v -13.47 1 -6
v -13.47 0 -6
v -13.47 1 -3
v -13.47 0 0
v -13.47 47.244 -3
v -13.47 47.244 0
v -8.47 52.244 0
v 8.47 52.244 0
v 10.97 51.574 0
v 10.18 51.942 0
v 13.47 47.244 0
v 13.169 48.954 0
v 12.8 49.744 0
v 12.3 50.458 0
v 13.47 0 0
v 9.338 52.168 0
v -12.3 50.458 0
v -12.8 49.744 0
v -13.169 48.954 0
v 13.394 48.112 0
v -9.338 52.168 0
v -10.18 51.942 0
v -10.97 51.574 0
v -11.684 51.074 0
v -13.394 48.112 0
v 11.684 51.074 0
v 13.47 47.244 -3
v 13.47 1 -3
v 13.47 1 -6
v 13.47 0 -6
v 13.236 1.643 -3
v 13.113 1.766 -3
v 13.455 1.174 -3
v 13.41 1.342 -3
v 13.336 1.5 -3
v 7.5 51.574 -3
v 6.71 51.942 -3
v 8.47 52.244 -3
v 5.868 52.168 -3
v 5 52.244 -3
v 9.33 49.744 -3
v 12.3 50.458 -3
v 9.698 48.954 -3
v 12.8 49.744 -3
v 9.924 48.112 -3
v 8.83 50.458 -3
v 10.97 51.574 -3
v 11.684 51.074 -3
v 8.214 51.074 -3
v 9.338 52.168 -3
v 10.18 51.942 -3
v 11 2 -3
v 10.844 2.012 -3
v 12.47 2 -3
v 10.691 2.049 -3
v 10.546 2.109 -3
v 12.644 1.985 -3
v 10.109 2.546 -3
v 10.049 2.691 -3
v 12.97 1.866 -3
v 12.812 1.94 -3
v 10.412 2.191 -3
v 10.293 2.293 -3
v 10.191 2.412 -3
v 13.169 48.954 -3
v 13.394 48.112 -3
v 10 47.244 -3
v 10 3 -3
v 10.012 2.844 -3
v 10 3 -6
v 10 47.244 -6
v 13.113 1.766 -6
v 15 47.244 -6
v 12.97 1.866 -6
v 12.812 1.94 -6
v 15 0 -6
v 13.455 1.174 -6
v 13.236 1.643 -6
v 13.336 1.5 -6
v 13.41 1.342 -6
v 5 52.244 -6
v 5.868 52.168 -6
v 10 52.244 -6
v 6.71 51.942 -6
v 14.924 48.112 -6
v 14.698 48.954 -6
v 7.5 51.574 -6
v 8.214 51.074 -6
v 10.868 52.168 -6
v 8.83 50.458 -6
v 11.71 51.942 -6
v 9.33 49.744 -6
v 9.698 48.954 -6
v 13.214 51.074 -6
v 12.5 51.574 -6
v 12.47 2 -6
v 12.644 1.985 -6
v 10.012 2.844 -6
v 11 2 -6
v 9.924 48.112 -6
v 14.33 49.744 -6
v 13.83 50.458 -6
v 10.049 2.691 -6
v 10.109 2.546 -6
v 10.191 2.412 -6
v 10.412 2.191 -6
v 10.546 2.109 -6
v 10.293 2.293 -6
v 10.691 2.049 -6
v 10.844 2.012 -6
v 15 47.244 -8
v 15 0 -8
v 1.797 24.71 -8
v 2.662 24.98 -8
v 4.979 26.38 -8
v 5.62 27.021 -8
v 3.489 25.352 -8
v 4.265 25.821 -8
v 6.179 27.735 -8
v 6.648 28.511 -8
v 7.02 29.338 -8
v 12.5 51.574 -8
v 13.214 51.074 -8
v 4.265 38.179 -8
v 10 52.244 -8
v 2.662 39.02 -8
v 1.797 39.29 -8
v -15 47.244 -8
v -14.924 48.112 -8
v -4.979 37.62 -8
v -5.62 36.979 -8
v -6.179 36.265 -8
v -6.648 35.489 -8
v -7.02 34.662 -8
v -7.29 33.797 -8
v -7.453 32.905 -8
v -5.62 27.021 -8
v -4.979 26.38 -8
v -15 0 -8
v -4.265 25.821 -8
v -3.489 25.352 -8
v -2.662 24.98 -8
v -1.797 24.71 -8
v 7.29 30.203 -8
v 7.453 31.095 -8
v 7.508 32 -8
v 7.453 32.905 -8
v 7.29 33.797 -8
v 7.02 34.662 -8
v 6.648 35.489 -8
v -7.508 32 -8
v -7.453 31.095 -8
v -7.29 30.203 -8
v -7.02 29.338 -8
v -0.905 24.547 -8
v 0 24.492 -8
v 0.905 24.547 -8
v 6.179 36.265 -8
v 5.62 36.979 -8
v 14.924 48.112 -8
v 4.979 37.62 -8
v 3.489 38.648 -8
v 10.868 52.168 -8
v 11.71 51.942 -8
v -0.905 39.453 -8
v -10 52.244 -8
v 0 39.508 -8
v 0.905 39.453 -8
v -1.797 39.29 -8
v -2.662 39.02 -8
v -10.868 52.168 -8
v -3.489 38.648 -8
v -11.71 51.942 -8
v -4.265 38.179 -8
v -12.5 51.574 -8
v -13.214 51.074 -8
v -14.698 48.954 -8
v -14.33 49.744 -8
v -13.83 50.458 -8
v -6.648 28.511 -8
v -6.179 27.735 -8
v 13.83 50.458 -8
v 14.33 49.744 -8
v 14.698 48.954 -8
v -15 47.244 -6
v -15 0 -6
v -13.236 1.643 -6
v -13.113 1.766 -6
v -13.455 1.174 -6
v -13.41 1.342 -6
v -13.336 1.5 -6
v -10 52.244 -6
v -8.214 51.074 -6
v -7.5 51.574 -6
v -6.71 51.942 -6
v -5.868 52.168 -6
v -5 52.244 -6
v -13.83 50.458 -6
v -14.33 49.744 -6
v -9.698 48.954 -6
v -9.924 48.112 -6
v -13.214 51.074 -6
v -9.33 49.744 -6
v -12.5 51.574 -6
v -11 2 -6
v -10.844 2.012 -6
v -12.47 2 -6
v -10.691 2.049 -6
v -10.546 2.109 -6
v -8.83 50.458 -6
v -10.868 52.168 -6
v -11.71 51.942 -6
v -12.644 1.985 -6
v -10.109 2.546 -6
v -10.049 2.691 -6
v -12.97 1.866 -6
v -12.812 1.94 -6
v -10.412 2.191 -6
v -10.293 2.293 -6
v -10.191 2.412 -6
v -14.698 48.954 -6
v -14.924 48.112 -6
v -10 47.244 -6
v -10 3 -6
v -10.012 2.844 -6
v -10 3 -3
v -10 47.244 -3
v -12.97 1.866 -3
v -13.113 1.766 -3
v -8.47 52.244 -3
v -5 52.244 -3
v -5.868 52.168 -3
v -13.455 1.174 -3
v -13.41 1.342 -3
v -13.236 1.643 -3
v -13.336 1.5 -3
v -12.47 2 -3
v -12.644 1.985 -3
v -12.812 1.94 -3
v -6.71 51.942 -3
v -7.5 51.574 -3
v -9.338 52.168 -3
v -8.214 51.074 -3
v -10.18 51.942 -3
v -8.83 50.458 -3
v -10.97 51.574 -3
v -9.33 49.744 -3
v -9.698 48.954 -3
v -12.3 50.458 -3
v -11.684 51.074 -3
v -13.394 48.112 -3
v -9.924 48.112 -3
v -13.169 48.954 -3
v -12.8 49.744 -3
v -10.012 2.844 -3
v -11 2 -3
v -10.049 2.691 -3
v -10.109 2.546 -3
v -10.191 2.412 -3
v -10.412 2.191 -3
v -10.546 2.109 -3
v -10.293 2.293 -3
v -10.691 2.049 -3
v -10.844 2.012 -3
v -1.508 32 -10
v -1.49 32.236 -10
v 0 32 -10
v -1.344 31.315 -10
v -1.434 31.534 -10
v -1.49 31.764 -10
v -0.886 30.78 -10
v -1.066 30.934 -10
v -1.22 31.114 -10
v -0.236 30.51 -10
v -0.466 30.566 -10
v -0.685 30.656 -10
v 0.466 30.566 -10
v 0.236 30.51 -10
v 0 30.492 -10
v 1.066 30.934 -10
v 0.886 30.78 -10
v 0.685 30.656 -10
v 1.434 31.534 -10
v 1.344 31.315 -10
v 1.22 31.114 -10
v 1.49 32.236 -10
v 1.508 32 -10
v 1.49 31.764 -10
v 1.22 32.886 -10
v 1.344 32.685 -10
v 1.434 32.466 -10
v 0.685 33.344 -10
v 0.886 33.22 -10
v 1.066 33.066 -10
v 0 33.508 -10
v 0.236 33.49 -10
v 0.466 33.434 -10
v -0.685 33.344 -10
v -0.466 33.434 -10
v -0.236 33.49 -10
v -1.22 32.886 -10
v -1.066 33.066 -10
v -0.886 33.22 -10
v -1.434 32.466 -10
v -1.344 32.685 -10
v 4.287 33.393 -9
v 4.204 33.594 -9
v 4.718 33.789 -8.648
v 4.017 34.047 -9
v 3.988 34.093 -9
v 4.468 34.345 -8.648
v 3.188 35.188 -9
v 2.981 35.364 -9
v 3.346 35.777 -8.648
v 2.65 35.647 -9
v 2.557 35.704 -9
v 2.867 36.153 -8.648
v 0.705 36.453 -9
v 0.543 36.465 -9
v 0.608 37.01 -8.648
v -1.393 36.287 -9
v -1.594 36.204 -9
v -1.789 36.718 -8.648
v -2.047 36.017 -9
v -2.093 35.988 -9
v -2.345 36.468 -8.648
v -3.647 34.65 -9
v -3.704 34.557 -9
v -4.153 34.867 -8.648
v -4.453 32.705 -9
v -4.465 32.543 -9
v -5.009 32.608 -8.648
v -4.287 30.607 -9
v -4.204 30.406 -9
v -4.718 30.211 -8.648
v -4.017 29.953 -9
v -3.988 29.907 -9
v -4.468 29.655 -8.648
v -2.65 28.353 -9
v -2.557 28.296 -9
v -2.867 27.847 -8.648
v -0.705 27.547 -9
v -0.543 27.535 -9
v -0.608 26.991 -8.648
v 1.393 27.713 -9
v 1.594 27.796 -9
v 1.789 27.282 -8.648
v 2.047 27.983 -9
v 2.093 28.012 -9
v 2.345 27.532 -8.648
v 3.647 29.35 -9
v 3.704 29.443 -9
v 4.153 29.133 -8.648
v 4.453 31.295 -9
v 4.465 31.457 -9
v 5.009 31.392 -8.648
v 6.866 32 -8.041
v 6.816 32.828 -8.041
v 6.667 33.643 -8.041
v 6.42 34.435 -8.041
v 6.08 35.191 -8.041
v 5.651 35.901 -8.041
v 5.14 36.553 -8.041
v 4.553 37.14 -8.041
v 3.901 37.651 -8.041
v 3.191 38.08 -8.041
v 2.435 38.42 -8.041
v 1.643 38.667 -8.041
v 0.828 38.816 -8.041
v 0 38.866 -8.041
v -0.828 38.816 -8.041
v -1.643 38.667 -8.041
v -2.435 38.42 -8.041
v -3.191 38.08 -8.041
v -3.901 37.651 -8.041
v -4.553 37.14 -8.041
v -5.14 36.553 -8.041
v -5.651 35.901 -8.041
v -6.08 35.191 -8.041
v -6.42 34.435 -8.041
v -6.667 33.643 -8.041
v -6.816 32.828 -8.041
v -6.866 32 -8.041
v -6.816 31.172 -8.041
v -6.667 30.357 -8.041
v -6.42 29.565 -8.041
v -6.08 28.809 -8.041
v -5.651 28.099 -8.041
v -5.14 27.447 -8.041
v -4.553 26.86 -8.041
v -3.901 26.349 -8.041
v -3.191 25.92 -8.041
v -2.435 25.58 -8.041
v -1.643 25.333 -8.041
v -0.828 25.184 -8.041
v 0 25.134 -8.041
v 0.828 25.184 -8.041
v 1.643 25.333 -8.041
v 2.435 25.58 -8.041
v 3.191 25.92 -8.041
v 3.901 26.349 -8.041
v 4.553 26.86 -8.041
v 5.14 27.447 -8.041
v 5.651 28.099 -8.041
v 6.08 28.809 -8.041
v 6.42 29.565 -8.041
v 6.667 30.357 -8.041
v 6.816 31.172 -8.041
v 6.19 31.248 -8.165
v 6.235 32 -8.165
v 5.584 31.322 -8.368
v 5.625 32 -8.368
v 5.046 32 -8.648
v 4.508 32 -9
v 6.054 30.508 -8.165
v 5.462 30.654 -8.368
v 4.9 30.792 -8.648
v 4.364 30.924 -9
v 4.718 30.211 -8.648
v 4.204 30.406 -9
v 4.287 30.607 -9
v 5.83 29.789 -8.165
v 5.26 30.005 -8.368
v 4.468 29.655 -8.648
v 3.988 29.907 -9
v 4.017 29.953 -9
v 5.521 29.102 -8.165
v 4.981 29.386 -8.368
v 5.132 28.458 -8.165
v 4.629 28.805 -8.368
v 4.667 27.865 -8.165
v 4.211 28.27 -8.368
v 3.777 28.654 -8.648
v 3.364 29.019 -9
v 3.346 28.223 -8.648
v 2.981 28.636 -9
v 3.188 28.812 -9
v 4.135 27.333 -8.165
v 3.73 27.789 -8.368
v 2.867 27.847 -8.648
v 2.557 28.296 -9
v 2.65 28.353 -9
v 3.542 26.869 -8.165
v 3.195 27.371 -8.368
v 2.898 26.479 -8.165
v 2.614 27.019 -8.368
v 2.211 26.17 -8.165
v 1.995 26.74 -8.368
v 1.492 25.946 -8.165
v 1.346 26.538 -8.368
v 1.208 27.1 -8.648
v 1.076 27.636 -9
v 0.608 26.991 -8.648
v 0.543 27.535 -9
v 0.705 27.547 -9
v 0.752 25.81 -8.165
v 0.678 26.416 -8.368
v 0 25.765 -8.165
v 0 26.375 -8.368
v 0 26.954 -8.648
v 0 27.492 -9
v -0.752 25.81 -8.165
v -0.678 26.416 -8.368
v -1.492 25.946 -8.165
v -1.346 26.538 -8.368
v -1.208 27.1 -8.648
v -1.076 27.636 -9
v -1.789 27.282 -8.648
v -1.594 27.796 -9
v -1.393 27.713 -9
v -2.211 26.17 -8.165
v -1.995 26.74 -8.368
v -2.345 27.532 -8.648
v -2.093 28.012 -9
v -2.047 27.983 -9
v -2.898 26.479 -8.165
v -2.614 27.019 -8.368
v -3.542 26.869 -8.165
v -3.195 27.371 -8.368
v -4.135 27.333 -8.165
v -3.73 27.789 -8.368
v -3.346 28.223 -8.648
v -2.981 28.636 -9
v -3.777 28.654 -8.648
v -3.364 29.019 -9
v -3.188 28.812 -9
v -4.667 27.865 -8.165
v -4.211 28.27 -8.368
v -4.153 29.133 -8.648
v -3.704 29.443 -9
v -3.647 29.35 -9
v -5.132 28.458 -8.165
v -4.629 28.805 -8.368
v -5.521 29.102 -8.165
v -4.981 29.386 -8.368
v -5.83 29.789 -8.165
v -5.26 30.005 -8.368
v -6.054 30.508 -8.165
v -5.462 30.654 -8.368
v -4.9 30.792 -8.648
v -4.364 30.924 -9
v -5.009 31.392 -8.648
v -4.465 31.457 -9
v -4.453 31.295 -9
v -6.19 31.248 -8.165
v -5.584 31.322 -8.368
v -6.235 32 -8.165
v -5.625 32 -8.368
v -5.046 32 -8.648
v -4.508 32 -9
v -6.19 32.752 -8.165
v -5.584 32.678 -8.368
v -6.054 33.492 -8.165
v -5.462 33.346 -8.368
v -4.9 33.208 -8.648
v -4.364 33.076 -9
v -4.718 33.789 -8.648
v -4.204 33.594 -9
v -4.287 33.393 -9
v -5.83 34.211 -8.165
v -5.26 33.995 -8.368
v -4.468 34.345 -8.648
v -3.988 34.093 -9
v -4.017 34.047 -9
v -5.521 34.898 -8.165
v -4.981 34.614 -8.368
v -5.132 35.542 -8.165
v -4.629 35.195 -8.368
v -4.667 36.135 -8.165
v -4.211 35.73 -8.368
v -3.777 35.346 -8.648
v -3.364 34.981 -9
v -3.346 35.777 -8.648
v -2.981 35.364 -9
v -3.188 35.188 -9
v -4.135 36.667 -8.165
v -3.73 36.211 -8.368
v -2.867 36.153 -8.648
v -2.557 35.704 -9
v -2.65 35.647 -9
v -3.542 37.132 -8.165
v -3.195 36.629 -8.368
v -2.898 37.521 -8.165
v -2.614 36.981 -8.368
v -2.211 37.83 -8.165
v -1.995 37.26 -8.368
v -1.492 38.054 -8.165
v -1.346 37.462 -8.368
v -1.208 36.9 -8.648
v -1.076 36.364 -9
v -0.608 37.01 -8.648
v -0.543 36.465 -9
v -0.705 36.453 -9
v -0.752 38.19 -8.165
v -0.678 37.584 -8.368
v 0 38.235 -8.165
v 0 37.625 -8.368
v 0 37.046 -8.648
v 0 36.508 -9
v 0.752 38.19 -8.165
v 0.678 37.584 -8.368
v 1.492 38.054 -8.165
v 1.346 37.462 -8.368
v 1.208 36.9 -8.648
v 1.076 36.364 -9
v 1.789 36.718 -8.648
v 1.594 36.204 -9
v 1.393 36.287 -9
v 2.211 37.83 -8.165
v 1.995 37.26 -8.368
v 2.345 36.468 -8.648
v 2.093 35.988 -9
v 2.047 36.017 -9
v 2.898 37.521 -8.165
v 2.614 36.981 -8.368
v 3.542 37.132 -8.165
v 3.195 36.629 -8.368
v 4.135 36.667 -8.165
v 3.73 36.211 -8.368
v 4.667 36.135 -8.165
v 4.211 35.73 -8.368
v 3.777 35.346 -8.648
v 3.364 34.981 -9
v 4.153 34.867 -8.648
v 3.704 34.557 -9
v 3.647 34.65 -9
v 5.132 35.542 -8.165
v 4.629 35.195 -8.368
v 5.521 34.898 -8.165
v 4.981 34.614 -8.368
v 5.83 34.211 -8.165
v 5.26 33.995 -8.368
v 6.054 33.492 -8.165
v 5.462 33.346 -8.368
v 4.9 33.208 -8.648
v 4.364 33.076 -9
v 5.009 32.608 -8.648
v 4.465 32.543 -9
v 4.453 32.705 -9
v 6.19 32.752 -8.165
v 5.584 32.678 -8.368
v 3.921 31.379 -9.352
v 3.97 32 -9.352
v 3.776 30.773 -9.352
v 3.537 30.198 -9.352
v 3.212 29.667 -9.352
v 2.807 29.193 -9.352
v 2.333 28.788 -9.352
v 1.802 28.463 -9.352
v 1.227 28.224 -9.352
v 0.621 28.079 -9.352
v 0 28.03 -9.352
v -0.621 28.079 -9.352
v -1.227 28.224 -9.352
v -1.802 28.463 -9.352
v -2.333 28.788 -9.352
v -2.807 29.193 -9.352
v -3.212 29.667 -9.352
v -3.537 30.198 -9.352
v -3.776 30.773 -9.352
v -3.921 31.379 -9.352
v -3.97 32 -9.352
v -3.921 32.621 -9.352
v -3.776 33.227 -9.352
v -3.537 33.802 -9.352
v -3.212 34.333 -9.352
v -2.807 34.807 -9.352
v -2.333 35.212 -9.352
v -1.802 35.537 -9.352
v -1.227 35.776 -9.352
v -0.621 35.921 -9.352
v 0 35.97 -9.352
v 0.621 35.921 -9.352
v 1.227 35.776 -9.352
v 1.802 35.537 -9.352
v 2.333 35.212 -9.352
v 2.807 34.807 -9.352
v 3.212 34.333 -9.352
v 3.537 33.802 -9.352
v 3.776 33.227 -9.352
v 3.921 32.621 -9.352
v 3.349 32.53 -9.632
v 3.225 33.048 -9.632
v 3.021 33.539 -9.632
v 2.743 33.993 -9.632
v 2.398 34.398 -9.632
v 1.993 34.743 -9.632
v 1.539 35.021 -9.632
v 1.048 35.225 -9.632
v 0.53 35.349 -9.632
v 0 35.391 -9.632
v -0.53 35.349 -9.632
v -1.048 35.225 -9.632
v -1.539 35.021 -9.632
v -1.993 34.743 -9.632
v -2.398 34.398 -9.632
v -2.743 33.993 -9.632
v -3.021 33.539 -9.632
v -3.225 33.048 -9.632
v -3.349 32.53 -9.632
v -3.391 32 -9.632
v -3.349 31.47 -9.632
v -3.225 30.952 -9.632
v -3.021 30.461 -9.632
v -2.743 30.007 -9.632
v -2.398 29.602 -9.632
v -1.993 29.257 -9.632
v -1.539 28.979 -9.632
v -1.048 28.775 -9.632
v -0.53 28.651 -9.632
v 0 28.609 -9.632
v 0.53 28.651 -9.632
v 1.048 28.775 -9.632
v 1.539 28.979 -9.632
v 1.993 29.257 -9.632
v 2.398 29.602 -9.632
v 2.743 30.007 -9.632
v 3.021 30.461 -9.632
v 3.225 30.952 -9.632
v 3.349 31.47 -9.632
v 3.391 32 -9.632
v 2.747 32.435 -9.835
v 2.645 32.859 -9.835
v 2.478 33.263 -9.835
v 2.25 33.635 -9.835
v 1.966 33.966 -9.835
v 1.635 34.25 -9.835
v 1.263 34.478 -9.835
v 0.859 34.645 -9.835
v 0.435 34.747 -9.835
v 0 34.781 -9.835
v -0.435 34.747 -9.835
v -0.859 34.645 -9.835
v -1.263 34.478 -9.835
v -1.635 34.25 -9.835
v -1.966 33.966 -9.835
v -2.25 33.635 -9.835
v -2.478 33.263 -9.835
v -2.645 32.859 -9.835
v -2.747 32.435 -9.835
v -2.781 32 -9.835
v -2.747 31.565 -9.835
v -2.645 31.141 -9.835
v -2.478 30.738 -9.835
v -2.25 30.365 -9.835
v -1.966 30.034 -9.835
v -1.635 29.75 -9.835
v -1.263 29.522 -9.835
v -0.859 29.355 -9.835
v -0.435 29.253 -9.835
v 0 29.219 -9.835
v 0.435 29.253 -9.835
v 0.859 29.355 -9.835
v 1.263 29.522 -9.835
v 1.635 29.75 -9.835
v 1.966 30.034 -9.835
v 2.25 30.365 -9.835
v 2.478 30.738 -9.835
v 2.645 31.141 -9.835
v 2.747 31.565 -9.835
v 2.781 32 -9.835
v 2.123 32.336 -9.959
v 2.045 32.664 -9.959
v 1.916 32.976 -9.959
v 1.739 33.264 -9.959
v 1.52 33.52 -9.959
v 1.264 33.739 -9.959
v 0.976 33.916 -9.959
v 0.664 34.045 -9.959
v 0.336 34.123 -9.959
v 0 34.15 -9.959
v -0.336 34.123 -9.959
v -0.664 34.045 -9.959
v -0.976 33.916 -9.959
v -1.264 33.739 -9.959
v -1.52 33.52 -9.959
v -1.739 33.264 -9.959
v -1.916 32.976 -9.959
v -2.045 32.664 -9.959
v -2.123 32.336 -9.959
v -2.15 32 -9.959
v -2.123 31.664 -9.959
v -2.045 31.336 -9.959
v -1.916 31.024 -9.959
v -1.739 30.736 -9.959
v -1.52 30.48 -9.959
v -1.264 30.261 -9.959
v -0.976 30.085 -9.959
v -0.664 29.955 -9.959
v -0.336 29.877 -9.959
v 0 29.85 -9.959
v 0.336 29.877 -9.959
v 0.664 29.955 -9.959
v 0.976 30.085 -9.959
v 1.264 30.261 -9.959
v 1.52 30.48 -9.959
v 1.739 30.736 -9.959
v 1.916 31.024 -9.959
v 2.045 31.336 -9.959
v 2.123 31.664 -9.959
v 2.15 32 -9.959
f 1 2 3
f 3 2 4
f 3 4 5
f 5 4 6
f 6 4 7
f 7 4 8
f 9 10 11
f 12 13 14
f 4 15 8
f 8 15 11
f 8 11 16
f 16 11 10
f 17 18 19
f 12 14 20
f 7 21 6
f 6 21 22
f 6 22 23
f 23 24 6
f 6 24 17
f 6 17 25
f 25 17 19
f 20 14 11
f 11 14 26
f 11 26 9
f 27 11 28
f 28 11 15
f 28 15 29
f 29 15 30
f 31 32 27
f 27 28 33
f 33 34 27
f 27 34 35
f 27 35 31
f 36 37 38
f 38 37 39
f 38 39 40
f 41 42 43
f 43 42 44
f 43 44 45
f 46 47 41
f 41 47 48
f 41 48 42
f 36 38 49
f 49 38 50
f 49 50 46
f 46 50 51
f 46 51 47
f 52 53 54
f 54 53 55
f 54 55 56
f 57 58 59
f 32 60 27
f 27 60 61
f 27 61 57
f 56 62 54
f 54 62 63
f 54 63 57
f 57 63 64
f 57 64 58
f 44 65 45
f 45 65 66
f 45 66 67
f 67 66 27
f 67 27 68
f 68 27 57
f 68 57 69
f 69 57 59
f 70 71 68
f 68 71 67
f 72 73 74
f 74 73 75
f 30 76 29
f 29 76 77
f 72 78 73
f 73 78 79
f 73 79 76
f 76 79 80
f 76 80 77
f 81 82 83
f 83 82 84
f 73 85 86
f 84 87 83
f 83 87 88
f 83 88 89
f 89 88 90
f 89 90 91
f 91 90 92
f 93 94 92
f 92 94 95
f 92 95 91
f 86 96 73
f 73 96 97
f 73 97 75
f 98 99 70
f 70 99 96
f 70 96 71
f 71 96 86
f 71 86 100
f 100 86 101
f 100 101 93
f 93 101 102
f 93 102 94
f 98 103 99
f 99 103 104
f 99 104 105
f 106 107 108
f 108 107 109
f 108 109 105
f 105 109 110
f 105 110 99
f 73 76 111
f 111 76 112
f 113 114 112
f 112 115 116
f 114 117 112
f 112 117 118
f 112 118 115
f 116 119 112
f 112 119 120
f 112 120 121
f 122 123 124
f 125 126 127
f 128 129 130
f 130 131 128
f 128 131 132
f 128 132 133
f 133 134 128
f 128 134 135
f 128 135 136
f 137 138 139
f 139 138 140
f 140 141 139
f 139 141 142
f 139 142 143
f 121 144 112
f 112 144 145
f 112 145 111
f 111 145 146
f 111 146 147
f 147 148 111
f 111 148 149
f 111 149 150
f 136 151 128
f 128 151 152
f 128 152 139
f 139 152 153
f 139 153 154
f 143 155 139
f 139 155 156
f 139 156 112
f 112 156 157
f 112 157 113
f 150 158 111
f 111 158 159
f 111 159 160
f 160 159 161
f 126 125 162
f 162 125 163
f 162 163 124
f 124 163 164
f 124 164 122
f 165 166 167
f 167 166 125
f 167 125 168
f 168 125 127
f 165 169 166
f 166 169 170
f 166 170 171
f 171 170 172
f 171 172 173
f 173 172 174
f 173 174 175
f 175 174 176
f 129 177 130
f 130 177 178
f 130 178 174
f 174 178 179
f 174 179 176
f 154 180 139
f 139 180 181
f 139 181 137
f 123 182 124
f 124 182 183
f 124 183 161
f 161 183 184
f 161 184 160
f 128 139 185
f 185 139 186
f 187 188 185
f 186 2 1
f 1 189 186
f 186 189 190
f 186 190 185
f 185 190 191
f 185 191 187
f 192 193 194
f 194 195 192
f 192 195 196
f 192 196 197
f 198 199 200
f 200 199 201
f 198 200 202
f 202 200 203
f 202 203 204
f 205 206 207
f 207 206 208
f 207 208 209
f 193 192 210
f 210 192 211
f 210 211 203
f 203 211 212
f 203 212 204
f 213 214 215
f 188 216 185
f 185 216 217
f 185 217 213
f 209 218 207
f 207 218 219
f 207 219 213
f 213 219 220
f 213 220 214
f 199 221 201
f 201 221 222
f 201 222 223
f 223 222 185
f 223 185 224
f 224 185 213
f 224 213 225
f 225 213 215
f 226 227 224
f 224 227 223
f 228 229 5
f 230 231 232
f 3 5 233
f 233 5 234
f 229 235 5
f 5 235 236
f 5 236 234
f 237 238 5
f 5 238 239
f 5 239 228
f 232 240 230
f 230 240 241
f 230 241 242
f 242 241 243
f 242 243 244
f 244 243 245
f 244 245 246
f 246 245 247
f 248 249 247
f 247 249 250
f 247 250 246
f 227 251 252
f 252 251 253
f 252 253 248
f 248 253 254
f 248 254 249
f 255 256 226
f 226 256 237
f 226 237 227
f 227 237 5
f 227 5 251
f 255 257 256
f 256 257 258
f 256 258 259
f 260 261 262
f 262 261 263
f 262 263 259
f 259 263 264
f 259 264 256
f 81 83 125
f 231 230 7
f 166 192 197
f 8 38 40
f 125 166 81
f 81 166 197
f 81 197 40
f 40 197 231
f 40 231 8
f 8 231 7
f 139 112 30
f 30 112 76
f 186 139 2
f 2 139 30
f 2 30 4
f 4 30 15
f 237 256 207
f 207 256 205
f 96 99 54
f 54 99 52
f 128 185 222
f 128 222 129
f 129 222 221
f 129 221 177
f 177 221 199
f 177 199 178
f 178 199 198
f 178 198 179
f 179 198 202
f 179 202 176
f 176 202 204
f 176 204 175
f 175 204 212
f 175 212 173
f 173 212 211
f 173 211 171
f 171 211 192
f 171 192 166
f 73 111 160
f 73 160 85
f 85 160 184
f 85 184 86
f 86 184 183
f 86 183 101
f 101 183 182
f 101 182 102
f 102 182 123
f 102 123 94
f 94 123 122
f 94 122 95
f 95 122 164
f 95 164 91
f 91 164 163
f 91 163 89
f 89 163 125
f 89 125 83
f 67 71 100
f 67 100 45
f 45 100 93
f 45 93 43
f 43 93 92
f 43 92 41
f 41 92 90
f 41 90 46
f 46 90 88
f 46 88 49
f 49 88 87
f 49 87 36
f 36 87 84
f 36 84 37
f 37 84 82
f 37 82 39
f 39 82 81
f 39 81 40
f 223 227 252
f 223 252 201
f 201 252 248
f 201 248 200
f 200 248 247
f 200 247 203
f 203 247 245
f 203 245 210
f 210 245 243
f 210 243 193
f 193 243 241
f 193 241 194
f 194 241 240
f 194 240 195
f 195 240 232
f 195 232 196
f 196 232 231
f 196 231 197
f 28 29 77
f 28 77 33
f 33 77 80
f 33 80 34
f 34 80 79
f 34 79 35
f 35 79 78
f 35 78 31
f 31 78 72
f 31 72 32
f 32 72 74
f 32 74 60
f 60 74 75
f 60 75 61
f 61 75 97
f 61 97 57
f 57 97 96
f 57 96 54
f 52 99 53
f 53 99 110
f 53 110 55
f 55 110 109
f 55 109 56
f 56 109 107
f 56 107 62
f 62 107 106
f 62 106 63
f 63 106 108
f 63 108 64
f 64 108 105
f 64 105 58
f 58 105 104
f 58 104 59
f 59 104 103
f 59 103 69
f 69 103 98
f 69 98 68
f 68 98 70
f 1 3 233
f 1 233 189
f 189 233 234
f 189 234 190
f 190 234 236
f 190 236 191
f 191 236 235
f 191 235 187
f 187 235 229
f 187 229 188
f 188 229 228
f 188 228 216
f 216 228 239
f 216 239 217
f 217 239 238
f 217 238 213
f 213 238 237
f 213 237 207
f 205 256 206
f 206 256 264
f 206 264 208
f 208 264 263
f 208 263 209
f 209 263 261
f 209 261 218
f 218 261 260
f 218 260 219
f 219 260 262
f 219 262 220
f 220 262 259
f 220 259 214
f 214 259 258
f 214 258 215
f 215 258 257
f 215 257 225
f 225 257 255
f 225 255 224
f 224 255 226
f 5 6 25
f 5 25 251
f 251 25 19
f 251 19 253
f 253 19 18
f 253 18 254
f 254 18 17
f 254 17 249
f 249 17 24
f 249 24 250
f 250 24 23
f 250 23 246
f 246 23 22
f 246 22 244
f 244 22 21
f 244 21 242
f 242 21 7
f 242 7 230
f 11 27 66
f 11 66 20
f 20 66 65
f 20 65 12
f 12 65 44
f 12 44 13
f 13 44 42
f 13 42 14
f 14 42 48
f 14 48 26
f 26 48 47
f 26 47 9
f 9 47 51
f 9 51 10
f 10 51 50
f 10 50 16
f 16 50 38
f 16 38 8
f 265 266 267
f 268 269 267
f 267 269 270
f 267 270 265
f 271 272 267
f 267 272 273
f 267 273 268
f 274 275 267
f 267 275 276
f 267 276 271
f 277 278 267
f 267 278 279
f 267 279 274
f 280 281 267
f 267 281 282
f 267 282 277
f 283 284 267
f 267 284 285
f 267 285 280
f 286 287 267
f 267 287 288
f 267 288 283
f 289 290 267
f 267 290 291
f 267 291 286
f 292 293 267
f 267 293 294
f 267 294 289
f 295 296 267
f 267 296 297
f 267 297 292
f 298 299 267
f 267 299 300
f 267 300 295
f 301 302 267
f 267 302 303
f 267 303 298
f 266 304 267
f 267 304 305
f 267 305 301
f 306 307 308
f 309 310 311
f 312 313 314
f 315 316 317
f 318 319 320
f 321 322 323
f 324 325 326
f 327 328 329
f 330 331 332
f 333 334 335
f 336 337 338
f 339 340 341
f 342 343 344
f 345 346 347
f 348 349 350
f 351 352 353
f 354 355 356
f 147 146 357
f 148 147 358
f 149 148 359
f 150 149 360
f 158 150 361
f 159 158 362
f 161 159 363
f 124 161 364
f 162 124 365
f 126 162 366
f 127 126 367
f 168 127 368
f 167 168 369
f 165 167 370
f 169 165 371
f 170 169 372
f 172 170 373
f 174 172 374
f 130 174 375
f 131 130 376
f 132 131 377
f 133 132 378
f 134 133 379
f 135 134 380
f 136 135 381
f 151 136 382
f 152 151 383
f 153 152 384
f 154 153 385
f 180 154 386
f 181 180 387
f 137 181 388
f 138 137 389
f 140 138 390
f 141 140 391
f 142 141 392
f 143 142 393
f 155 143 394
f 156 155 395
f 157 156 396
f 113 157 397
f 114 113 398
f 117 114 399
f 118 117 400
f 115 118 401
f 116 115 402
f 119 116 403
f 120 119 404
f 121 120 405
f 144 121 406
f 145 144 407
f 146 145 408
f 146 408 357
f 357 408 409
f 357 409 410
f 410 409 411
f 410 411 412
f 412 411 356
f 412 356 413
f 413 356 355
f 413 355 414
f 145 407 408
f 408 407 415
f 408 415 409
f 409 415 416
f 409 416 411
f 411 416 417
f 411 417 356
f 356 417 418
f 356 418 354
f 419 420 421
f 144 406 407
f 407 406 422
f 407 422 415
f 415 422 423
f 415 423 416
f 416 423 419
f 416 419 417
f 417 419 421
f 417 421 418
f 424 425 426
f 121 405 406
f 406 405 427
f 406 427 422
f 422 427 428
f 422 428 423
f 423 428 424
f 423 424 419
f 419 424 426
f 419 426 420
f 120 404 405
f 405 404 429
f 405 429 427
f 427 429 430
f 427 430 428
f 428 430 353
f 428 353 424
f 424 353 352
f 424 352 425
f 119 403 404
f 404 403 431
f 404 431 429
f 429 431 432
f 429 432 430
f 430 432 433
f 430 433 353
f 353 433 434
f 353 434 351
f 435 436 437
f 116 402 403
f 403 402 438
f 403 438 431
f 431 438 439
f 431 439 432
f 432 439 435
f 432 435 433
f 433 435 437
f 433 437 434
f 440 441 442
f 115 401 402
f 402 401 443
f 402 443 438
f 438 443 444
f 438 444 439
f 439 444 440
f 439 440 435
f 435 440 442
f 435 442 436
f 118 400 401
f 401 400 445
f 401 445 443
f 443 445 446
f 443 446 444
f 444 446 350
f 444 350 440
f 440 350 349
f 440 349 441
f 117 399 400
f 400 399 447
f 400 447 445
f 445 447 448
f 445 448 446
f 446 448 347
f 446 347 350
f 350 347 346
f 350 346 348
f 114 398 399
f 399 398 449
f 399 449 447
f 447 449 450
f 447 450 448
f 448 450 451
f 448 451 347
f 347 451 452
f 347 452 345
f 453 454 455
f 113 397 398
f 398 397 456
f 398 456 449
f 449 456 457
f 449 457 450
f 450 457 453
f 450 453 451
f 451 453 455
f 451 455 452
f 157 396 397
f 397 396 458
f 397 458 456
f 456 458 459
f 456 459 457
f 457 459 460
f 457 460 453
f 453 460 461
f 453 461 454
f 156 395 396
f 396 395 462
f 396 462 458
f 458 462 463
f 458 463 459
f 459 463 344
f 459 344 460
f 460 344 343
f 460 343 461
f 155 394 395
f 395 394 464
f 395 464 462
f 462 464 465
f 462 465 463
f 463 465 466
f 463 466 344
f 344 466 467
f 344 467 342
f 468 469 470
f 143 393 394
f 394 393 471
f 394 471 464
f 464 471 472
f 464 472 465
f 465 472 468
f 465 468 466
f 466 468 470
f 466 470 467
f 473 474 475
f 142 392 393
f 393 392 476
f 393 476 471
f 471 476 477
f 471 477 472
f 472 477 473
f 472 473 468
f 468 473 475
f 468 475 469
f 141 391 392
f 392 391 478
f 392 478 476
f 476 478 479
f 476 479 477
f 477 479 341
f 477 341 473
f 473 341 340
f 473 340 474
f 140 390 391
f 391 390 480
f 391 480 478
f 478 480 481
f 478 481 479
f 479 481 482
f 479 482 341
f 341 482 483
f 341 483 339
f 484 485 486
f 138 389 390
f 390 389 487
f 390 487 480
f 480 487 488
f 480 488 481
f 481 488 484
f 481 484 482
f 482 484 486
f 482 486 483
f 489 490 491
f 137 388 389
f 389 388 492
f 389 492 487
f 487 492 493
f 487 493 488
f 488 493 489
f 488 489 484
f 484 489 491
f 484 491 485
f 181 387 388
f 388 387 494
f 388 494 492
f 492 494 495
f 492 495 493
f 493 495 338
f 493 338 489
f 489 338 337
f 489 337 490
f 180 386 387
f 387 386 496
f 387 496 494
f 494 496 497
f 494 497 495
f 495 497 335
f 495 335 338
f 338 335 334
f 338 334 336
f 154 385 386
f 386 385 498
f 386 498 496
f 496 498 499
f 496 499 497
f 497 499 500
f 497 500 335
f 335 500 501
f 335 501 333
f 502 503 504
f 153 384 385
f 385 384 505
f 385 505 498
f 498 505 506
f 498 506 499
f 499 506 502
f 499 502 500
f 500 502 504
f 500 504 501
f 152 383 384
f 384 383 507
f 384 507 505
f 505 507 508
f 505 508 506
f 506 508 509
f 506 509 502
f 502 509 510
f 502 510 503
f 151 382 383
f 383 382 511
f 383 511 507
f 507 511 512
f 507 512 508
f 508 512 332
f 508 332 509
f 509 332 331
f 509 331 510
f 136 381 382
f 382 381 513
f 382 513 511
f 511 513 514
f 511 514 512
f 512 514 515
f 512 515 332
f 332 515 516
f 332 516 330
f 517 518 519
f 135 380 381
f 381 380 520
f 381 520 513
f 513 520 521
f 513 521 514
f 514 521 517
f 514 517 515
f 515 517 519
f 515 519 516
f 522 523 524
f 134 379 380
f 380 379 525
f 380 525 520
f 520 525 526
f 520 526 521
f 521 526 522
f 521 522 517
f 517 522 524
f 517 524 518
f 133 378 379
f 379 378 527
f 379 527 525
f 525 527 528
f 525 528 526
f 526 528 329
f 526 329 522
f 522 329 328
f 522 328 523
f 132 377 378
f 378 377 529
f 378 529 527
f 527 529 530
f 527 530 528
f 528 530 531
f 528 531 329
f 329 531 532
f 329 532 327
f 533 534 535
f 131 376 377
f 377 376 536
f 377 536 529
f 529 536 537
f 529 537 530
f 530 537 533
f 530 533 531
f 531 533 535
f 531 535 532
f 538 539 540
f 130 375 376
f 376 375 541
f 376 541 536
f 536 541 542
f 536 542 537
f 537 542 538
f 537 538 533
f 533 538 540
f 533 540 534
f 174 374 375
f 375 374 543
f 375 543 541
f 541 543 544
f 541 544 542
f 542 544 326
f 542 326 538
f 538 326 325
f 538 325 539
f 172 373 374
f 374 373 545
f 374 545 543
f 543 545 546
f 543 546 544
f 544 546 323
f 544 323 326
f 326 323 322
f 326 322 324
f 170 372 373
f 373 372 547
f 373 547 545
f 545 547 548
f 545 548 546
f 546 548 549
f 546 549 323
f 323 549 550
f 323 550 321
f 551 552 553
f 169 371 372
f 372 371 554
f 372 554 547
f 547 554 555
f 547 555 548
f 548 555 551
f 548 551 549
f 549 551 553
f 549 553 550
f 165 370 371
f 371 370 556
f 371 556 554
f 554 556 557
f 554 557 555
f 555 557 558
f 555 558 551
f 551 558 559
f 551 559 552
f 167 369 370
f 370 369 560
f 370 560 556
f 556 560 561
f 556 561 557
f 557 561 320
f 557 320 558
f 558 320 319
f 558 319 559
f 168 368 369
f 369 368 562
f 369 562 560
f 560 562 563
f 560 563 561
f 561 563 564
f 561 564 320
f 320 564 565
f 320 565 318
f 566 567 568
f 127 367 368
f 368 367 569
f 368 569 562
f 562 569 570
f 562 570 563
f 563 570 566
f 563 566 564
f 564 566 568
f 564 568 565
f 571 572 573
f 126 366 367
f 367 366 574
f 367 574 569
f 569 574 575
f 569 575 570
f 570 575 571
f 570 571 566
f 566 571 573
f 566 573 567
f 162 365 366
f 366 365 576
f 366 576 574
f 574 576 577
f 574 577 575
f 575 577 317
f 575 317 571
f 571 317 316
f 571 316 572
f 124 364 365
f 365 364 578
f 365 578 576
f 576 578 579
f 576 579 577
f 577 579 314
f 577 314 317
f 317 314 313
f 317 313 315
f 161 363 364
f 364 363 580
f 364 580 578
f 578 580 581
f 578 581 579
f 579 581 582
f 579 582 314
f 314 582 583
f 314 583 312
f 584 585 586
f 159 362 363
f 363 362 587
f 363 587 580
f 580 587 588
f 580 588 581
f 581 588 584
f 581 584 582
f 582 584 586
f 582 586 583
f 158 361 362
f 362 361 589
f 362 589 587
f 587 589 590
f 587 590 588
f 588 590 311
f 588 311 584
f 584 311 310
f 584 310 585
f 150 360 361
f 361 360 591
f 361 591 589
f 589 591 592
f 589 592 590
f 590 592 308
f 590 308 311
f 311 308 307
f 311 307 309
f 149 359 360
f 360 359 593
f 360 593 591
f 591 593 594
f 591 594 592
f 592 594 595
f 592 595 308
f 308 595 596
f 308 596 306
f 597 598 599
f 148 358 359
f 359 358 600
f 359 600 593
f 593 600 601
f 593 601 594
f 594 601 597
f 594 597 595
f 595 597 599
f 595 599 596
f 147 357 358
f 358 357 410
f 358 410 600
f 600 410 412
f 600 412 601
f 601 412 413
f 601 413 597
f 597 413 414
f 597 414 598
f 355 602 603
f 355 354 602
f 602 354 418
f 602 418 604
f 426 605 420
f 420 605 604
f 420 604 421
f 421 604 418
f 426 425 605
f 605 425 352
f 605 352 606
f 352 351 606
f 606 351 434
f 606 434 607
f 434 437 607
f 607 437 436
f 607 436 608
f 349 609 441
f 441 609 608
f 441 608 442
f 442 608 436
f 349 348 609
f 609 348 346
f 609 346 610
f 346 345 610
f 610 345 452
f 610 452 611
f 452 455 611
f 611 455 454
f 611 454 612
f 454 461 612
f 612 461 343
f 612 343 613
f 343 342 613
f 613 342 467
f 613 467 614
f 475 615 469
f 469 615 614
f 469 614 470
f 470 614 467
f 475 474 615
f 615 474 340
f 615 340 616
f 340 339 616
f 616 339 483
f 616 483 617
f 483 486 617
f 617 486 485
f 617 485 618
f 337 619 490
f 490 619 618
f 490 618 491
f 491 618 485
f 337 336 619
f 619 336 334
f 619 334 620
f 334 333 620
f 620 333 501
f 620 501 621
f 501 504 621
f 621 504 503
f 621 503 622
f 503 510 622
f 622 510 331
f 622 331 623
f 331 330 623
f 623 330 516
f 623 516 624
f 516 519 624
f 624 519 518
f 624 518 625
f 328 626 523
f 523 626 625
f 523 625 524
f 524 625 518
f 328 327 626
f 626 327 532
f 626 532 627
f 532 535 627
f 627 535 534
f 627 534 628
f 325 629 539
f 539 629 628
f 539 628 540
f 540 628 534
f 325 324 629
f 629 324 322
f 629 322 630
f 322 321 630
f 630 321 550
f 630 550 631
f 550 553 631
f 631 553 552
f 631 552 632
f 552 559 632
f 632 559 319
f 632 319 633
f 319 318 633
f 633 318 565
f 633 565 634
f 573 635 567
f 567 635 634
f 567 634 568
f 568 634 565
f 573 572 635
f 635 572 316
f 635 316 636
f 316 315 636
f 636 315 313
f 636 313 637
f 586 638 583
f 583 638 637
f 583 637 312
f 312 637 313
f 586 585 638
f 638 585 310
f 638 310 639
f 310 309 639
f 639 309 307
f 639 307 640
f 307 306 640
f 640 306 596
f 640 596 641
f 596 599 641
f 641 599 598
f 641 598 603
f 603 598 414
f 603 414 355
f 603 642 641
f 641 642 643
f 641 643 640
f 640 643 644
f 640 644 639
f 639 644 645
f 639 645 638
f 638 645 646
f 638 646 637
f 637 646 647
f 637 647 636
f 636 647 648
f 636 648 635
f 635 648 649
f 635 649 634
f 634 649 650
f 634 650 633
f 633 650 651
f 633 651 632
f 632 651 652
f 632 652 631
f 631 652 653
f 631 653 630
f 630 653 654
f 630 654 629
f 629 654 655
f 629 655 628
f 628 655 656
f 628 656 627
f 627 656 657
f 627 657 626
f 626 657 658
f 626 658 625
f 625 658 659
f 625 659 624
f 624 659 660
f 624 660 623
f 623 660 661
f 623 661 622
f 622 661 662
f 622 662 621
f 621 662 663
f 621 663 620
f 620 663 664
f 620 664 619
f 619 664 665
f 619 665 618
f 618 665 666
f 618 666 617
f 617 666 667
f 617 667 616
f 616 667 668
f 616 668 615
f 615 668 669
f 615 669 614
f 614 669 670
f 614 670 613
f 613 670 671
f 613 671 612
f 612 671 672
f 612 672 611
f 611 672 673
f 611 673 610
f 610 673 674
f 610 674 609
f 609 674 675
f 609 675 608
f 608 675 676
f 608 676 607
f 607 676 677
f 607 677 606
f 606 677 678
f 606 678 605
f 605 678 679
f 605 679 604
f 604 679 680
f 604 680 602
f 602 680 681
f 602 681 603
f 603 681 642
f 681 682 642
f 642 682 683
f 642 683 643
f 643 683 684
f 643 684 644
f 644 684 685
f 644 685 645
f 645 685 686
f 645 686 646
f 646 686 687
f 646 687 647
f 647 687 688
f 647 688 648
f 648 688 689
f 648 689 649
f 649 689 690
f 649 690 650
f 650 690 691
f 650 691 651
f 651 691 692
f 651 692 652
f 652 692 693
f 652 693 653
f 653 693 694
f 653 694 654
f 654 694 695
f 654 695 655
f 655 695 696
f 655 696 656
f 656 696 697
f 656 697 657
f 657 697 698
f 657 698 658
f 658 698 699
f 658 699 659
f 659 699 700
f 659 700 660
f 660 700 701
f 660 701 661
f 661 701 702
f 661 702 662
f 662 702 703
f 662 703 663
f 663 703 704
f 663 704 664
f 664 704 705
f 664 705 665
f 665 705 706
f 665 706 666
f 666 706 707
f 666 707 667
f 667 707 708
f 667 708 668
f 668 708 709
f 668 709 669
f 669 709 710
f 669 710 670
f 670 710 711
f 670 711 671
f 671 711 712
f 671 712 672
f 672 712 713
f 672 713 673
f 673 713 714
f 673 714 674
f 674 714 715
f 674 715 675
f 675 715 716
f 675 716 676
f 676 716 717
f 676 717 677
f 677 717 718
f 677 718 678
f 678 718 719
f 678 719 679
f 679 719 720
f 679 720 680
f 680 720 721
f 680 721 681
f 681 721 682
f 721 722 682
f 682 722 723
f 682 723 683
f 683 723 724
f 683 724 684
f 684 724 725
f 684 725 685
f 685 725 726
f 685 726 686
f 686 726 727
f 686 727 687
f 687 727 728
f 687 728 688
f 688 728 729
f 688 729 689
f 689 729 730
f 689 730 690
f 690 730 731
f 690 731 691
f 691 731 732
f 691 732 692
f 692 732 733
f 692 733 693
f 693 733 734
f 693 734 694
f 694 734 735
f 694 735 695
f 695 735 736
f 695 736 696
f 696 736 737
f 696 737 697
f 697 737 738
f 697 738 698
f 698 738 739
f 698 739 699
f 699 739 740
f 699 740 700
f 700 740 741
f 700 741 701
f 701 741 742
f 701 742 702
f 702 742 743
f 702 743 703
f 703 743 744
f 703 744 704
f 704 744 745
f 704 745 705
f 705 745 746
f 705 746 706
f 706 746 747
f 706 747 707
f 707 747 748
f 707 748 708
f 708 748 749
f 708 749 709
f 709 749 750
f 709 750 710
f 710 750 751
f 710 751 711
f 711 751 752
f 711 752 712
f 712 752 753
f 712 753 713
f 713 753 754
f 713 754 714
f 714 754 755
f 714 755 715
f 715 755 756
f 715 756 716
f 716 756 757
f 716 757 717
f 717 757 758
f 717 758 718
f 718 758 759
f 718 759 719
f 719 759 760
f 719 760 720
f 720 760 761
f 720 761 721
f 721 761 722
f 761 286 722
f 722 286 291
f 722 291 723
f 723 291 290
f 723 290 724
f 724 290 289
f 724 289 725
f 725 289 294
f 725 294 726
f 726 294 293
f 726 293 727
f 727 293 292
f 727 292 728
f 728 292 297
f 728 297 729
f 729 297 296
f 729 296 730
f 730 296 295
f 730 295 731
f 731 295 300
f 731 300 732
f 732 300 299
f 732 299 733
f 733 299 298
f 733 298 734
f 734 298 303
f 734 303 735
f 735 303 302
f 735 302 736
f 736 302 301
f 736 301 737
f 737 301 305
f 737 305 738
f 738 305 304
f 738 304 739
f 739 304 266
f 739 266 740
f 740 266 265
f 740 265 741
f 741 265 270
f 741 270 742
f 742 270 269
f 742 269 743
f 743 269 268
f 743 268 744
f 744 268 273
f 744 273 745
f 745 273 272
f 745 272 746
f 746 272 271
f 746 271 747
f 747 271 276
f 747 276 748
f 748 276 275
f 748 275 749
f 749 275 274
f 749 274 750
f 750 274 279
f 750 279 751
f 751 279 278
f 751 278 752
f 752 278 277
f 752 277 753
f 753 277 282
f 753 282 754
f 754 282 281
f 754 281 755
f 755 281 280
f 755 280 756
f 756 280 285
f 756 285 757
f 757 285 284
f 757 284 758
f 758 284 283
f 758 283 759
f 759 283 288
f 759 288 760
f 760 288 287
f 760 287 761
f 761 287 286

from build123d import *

# Parameters (mm, degrees)
BOSS_EXTRUDE1_DEPTH = 52.243773639
SKETCH2_W           = 26.940383964
SKETCH2_H           = 5.525205864
BOSS_EXTRUDE2_DEPTH = 2
FILLET1_R           = 5
FILLET3_R           = 1
FILLET4_R           = 5
SKETCH3_R           = 3.508090029
BOSS_EXTRUDE3_DEPTH = 2
FILLET5_R           = 5
FILLET6_R           = 5


# Some blends are built 0.0001 mm under size
with BuildPart() as part:
    # Sketch1 → Boss-Extrude1 (new body)
    with BuildSketch(Plane(origin=(0, 0, 0), x_dir=(1, 0, 0), z_dir=(0, 1, 0))):
        Polygon((13.470191982, 0), (-13.470191982, 0), (-13.470191982, 3), (-10, 3), (-10, 6), (-15, 6), (-15, 8), (15, 8), (15, 6), (10, 6), (10, 3), (13.470191982, 3), align=None)
    extrude(amount=BOSS_EXTRUDE1_DEPTH)

    # Sketch2 → Boss-Extrude2 (add)
    with BuildSketch(Plane.XZ):
        with Locations((0, -4.262602932)):
            Rectangle(SKETCH2_W, SKETCH2_H)
    extrude(amount=-BOSS_EXTRUDE2_DEPTH)

    # Fillet1
    fillet1_edges = [part.edges().sort_by_distance(p)[0] for p in [
        (10, 52.243773639, -4.5),
        (-10, 52.243773639, -4.5),
        (-15, 52.243773639, -7),
        (15, 52.243773639, -7),
    ]]
    fillet(fillet1_edges, radius=FILLET1_R - 0.0001)  # a hair under: the kernel refuses the full size

    # Fillet3
    fillet3_edges = [part.edges().sort_by_distance(p)[0] for p in [
        (13.470191982, 2, -4.5),
        (-13.470191982, 2, -4.5),
        (10, 2, -4.5),
        (-10, 2, -4.5),
    ]]
    fillet(fillet3_edges, radius=FILLET3_R)

    # Fillet4
    fillet4_edges = [part.edges().sort_by_distance(p)[0] for p in [
        (13.470191982, 52.243773639, -1.5),
        (-13.470191982, 52.243773639, -1.5),
    ]]
    fillet(fillet4_edges, radius=FILLET4_R)

    # Sketch3 → Boss-Extrude3 (add)
    with BuildSketch(Plane(origin=(0, 0, -8), x_dir=(-1, 0, 0), z_dir=(0, 0, -1))):
        with Locations(Location((0, 32, 0), (0, 0, 180))):
            Circle(SKETCH3_R)
    extrude(amount=BOSS_EXTRUDE3_DEPTH)

    # Fillet5
    # the kernel refuses this fillet: 5 mm, written as the material it adds along each edge
    with BuildSketch(Plane(origin=(0, 32, -8), x_dir=(1, 0, 0), z_dir=(0, 1, 0))) as fillet5_piece_1:
        with BuildLine():
            CenterArc((7.508090029, 5), FILLET5_R, 216.869897646, 53.130102354)
            Line((3.508090029, 2), (3.428090029, 1.94))
            ThreePointArc((3.428090029, 1.94), (3.408090029, 1), (3.408090029, 0))
            Line((3.408090029, 0), (3.508090029, -0.1))
            Line((3.508090029, -0.1), (7.508090029, -0.1))
            Line((7.508090029, -0.1), (7.508090029, 0))
        make_face()
    revolve(axis=Axis((0, 32, -8), (0, 0, -1)))

    # Fillet6
    fillet6_edges = [part.edges().sort_by_distance(p)[0] for p in [
        (-3.508090029, 32, -10),
    ]]
    fillet(fillet6_edges, radius=FILLET6_R)


solid = part.part
